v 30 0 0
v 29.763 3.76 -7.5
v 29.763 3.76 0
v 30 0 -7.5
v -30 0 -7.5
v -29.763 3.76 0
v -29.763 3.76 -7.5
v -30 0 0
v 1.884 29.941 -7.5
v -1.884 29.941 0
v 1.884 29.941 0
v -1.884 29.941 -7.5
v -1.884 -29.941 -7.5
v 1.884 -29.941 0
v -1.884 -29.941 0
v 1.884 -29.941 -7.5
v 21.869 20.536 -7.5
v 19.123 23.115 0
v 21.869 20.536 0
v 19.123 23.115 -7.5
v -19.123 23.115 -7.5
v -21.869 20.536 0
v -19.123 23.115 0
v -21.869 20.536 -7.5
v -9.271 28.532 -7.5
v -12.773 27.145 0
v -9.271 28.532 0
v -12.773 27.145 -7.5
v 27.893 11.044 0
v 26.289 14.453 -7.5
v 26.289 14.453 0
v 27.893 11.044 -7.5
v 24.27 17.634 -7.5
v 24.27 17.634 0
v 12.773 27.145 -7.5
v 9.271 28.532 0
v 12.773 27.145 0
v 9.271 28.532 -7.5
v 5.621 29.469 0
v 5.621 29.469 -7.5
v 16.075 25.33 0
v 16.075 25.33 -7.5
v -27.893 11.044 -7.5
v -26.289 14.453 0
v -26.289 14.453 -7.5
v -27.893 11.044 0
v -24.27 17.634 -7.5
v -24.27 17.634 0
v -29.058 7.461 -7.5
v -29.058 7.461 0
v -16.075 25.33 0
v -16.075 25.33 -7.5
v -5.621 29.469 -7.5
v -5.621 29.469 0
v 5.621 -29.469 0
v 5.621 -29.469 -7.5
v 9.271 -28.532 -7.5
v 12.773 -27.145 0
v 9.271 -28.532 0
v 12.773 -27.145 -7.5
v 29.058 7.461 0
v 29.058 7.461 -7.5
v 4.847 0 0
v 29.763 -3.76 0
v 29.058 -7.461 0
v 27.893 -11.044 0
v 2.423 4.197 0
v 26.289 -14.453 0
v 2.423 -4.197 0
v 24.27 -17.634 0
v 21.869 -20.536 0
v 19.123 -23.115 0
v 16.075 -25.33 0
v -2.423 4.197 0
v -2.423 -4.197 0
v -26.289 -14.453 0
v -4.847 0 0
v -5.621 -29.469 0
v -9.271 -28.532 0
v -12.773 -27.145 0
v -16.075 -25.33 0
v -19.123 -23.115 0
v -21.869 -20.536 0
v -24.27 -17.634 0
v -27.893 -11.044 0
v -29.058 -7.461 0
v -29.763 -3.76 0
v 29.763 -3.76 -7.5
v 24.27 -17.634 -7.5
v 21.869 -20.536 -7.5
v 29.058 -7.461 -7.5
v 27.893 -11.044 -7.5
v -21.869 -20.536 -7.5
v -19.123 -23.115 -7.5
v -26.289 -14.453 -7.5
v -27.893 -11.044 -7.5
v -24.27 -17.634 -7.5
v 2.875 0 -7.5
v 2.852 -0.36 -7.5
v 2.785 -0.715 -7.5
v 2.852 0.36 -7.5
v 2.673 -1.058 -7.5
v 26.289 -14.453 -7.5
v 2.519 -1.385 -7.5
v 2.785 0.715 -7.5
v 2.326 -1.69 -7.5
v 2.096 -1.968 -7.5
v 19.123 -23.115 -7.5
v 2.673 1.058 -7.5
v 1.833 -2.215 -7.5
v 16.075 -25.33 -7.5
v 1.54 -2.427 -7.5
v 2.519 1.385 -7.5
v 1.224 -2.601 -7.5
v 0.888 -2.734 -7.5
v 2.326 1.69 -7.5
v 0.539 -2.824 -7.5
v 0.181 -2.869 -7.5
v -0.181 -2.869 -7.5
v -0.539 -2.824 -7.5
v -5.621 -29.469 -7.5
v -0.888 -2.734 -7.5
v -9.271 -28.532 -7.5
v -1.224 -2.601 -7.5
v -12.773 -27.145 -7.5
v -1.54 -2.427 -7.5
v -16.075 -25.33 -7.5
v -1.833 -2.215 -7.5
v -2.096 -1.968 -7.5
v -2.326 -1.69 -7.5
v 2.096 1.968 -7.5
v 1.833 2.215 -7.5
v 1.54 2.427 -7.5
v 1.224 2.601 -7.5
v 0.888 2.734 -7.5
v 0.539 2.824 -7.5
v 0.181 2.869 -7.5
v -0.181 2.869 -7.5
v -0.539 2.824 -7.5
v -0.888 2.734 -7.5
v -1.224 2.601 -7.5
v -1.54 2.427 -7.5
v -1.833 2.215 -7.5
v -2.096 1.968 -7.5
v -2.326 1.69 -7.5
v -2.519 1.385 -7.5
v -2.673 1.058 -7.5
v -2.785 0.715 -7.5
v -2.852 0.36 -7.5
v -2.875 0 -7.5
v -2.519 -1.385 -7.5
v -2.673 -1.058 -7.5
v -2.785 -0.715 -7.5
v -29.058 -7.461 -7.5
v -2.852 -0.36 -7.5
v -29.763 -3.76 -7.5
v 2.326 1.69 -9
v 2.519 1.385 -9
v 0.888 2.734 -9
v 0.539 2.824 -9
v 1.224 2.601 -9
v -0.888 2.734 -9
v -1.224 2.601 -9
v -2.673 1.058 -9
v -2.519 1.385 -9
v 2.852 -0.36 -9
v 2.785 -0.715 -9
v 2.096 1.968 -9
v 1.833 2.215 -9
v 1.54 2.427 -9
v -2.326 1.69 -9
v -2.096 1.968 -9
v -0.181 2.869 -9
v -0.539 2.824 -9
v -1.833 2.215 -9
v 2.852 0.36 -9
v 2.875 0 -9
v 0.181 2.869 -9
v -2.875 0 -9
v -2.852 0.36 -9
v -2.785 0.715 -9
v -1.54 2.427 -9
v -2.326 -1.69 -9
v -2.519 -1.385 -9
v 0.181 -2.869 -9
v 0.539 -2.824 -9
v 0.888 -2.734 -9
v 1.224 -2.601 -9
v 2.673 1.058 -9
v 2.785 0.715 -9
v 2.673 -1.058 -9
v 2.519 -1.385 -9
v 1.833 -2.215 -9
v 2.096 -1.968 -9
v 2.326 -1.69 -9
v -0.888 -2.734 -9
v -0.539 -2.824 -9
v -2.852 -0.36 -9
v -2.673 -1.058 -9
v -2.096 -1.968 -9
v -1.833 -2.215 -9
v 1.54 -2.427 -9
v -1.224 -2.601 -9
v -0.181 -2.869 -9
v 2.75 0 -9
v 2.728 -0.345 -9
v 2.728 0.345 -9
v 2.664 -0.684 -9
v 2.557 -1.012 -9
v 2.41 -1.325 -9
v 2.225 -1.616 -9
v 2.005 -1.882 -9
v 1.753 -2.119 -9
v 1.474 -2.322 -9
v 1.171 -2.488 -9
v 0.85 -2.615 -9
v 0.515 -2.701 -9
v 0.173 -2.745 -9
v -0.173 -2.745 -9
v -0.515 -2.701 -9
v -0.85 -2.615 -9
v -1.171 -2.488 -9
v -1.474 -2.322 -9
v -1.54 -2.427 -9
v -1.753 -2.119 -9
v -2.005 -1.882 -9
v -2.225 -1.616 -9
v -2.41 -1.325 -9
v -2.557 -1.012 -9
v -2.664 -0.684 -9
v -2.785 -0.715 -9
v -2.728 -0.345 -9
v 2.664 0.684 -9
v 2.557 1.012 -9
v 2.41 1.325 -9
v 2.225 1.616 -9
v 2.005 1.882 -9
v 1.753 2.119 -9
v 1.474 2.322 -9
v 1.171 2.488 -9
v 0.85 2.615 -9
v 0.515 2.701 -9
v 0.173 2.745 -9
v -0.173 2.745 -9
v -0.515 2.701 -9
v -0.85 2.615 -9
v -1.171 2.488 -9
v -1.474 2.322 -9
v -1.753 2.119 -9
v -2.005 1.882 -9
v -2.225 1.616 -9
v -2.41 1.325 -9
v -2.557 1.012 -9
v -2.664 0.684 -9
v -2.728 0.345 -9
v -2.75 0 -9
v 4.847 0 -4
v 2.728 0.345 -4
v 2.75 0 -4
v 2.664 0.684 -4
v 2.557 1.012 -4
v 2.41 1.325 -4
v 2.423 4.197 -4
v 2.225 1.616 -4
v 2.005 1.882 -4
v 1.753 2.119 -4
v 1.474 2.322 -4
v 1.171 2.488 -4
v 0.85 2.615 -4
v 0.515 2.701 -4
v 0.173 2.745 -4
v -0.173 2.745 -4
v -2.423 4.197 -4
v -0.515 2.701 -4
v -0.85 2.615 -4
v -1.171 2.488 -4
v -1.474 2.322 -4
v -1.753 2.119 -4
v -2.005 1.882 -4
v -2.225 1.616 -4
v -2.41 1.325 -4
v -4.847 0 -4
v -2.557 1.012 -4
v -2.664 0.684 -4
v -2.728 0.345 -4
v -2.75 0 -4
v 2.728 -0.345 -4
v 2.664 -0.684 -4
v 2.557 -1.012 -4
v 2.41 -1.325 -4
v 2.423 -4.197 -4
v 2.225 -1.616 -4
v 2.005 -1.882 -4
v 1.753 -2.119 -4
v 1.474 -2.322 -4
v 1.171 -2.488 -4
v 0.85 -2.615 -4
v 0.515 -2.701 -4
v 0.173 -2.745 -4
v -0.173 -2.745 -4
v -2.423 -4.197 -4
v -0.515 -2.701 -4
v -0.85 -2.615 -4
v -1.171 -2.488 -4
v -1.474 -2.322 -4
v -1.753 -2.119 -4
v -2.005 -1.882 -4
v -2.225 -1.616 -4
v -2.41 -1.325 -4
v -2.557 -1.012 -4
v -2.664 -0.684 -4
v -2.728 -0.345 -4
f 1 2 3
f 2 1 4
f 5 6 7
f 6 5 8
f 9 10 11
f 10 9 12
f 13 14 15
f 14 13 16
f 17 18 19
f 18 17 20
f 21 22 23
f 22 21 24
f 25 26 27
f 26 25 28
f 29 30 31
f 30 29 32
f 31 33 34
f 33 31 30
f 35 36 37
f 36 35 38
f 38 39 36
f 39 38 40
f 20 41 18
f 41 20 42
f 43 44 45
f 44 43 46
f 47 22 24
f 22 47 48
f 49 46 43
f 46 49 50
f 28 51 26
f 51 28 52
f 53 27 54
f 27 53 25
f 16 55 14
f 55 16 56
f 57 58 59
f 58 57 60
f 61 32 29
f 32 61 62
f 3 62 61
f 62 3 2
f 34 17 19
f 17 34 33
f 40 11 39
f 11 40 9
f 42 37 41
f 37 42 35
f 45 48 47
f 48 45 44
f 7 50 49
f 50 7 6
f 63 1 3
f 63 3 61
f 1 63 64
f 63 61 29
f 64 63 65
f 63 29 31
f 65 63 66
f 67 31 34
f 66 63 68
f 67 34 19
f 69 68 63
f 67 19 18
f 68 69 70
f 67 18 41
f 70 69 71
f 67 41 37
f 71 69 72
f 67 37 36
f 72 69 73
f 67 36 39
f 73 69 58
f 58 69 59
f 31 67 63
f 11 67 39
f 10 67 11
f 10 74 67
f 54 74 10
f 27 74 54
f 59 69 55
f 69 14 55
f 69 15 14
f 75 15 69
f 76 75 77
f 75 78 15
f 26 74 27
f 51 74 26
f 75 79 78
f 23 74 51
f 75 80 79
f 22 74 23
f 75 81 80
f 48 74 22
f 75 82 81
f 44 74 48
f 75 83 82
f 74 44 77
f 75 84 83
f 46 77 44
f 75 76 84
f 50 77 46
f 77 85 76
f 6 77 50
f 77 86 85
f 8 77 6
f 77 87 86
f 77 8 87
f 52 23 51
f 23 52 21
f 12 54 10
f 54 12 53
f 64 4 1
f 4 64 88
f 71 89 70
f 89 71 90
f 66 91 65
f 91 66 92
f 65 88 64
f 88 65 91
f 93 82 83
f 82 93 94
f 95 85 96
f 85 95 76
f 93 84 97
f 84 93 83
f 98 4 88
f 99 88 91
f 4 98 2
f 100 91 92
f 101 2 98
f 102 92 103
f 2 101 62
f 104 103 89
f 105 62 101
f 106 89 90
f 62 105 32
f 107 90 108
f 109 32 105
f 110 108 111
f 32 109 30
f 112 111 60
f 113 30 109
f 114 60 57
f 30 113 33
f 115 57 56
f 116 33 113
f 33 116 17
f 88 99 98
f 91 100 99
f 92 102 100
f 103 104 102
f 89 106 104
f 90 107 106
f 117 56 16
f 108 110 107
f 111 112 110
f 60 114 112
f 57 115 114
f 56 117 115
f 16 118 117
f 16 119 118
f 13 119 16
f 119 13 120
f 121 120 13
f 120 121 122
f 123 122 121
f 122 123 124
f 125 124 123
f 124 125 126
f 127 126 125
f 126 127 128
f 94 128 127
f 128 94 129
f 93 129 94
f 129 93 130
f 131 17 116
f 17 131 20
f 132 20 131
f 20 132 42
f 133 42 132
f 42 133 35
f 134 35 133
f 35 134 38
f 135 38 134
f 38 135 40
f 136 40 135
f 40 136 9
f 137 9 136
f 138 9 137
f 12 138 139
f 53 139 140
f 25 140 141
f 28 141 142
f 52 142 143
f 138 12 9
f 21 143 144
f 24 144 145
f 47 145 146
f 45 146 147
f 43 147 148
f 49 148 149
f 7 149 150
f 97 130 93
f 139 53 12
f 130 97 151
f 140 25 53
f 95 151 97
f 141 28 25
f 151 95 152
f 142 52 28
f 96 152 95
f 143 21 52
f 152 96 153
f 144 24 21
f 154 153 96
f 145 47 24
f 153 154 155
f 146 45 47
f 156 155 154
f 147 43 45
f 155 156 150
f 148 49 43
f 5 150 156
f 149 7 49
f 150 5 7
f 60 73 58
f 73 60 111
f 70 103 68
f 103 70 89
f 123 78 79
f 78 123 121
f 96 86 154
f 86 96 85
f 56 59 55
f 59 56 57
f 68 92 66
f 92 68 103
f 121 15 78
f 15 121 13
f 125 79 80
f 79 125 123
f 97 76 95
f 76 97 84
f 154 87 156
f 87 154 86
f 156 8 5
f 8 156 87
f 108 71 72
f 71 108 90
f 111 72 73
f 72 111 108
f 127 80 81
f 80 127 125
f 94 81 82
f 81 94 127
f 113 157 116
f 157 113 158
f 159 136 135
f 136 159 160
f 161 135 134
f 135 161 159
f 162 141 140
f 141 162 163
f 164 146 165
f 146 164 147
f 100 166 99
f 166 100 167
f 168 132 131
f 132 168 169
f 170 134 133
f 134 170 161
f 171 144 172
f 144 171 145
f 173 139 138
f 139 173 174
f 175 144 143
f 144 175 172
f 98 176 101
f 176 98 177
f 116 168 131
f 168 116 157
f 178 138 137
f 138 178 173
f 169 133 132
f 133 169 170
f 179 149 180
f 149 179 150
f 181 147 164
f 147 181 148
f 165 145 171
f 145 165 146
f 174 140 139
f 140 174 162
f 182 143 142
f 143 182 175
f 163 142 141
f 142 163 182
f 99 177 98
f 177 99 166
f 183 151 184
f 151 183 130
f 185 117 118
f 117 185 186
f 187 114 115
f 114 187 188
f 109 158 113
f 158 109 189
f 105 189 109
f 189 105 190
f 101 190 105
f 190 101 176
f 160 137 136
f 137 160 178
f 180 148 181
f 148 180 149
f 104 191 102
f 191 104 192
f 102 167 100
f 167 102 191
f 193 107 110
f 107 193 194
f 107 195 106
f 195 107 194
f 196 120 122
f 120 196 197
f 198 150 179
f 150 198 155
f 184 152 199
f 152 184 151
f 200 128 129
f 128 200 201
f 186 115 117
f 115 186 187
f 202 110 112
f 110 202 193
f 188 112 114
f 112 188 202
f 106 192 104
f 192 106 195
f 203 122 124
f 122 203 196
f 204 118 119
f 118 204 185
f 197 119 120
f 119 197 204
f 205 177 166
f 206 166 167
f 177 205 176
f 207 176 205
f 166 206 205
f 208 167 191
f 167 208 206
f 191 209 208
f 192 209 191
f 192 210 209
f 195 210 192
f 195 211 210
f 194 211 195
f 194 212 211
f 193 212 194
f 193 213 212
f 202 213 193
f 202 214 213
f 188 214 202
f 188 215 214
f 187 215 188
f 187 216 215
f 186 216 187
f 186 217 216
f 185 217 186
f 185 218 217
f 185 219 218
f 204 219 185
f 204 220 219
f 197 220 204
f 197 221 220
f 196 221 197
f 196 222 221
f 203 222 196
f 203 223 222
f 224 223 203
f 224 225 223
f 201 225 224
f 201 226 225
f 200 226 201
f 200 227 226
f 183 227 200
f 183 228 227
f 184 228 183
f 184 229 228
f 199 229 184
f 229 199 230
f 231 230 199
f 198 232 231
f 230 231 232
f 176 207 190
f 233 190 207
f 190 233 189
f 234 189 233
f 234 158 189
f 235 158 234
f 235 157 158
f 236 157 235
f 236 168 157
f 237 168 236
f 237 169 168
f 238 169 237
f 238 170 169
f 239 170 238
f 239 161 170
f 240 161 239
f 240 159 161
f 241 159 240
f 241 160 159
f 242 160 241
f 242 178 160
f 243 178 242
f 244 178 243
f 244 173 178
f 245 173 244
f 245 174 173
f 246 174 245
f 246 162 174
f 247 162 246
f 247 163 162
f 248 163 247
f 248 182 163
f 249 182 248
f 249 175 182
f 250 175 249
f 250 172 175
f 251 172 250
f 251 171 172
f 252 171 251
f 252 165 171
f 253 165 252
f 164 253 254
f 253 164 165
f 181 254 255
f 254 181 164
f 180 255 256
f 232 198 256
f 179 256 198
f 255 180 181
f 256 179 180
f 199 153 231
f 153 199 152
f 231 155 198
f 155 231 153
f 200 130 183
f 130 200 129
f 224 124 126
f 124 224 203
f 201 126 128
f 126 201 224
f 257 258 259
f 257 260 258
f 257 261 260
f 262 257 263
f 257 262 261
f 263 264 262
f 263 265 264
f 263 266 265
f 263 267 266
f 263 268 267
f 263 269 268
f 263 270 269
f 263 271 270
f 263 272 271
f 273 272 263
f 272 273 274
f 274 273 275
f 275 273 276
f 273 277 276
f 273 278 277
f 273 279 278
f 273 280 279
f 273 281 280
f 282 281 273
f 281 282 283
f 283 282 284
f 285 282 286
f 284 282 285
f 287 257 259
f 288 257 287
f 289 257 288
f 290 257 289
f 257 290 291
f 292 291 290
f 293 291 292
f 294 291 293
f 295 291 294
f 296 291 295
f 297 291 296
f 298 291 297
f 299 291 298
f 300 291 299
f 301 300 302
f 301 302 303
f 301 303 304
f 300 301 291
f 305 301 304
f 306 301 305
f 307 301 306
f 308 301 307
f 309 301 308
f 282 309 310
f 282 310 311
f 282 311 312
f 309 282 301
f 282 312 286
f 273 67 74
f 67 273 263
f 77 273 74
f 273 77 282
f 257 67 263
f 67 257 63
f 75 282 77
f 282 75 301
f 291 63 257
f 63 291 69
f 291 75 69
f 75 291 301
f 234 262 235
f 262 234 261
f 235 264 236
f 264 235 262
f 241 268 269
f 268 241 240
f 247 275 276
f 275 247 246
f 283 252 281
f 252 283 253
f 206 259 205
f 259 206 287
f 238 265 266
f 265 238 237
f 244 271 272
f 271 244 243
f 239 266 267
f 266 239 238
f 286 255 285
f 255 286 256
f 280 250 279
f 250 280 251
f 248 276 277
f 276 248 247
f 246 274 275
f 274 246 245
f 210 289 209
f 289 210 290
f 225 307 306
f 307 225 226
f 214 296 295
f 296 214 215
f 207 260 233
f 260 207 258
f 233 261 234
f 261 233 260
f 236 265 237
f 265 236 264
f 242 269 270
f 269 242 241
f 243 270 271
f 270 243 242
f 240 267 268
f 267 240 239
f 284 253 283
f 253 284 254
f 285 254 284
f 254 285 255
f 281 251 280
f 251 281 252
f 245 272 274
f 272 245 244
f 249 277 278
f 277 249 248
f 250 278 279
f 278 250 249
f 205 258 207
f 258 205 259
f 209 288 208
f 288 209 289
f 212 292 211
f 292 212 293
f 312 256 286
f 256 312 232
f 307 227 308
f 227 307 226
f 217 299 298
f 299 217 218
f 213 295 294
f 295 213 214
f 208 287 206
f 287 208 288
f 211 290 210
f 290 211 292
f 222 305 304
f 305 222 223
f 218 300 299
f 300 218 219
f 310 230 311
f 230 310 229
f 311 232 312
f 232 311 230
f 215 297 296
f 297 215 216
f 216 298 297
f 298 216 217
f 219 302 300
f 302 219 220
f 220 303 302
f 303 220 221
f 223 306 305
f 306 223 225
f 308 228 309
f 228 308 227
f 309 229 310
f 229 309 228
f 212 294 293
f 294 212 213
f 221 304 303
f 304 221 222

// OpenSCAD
$fn = 50;


difference() {
	union() {
		translate(v = [0, 0, -7.5000000000]) {
			cylinder(h = 7.5000000000, r = 30.0000000000);
		}
		translate(v = [0, 0, -9.0000000000]) {
			cylinder(h = 9, r = 2.8750000000);
		}
	}
	union() {
		translate(v = [0, 0, 0]) {
			rotate(a = [0, 0, 0]) {
				difference() {
					union() {
						translate(v = [0, 0, -4]) {
							linear_extrude(height = 4) {
								polygon(points = [[4.8468000000, 0.0000000000], [2.4234000000, 4.1974519271], [-2.4234000000, 4.1974519271], [-4.8468000000, 0.0000000000], [-2.4234000000, -4.1974519271], [2.4234000000, -4.1974519271]]);
							}
						}
					}
					union();
				}
			}
		}
		#translate(v = [0, 0, -100.0000000000]) {
			cylinder(h = 200, r = 2.7500000000);
		}
	}
}
